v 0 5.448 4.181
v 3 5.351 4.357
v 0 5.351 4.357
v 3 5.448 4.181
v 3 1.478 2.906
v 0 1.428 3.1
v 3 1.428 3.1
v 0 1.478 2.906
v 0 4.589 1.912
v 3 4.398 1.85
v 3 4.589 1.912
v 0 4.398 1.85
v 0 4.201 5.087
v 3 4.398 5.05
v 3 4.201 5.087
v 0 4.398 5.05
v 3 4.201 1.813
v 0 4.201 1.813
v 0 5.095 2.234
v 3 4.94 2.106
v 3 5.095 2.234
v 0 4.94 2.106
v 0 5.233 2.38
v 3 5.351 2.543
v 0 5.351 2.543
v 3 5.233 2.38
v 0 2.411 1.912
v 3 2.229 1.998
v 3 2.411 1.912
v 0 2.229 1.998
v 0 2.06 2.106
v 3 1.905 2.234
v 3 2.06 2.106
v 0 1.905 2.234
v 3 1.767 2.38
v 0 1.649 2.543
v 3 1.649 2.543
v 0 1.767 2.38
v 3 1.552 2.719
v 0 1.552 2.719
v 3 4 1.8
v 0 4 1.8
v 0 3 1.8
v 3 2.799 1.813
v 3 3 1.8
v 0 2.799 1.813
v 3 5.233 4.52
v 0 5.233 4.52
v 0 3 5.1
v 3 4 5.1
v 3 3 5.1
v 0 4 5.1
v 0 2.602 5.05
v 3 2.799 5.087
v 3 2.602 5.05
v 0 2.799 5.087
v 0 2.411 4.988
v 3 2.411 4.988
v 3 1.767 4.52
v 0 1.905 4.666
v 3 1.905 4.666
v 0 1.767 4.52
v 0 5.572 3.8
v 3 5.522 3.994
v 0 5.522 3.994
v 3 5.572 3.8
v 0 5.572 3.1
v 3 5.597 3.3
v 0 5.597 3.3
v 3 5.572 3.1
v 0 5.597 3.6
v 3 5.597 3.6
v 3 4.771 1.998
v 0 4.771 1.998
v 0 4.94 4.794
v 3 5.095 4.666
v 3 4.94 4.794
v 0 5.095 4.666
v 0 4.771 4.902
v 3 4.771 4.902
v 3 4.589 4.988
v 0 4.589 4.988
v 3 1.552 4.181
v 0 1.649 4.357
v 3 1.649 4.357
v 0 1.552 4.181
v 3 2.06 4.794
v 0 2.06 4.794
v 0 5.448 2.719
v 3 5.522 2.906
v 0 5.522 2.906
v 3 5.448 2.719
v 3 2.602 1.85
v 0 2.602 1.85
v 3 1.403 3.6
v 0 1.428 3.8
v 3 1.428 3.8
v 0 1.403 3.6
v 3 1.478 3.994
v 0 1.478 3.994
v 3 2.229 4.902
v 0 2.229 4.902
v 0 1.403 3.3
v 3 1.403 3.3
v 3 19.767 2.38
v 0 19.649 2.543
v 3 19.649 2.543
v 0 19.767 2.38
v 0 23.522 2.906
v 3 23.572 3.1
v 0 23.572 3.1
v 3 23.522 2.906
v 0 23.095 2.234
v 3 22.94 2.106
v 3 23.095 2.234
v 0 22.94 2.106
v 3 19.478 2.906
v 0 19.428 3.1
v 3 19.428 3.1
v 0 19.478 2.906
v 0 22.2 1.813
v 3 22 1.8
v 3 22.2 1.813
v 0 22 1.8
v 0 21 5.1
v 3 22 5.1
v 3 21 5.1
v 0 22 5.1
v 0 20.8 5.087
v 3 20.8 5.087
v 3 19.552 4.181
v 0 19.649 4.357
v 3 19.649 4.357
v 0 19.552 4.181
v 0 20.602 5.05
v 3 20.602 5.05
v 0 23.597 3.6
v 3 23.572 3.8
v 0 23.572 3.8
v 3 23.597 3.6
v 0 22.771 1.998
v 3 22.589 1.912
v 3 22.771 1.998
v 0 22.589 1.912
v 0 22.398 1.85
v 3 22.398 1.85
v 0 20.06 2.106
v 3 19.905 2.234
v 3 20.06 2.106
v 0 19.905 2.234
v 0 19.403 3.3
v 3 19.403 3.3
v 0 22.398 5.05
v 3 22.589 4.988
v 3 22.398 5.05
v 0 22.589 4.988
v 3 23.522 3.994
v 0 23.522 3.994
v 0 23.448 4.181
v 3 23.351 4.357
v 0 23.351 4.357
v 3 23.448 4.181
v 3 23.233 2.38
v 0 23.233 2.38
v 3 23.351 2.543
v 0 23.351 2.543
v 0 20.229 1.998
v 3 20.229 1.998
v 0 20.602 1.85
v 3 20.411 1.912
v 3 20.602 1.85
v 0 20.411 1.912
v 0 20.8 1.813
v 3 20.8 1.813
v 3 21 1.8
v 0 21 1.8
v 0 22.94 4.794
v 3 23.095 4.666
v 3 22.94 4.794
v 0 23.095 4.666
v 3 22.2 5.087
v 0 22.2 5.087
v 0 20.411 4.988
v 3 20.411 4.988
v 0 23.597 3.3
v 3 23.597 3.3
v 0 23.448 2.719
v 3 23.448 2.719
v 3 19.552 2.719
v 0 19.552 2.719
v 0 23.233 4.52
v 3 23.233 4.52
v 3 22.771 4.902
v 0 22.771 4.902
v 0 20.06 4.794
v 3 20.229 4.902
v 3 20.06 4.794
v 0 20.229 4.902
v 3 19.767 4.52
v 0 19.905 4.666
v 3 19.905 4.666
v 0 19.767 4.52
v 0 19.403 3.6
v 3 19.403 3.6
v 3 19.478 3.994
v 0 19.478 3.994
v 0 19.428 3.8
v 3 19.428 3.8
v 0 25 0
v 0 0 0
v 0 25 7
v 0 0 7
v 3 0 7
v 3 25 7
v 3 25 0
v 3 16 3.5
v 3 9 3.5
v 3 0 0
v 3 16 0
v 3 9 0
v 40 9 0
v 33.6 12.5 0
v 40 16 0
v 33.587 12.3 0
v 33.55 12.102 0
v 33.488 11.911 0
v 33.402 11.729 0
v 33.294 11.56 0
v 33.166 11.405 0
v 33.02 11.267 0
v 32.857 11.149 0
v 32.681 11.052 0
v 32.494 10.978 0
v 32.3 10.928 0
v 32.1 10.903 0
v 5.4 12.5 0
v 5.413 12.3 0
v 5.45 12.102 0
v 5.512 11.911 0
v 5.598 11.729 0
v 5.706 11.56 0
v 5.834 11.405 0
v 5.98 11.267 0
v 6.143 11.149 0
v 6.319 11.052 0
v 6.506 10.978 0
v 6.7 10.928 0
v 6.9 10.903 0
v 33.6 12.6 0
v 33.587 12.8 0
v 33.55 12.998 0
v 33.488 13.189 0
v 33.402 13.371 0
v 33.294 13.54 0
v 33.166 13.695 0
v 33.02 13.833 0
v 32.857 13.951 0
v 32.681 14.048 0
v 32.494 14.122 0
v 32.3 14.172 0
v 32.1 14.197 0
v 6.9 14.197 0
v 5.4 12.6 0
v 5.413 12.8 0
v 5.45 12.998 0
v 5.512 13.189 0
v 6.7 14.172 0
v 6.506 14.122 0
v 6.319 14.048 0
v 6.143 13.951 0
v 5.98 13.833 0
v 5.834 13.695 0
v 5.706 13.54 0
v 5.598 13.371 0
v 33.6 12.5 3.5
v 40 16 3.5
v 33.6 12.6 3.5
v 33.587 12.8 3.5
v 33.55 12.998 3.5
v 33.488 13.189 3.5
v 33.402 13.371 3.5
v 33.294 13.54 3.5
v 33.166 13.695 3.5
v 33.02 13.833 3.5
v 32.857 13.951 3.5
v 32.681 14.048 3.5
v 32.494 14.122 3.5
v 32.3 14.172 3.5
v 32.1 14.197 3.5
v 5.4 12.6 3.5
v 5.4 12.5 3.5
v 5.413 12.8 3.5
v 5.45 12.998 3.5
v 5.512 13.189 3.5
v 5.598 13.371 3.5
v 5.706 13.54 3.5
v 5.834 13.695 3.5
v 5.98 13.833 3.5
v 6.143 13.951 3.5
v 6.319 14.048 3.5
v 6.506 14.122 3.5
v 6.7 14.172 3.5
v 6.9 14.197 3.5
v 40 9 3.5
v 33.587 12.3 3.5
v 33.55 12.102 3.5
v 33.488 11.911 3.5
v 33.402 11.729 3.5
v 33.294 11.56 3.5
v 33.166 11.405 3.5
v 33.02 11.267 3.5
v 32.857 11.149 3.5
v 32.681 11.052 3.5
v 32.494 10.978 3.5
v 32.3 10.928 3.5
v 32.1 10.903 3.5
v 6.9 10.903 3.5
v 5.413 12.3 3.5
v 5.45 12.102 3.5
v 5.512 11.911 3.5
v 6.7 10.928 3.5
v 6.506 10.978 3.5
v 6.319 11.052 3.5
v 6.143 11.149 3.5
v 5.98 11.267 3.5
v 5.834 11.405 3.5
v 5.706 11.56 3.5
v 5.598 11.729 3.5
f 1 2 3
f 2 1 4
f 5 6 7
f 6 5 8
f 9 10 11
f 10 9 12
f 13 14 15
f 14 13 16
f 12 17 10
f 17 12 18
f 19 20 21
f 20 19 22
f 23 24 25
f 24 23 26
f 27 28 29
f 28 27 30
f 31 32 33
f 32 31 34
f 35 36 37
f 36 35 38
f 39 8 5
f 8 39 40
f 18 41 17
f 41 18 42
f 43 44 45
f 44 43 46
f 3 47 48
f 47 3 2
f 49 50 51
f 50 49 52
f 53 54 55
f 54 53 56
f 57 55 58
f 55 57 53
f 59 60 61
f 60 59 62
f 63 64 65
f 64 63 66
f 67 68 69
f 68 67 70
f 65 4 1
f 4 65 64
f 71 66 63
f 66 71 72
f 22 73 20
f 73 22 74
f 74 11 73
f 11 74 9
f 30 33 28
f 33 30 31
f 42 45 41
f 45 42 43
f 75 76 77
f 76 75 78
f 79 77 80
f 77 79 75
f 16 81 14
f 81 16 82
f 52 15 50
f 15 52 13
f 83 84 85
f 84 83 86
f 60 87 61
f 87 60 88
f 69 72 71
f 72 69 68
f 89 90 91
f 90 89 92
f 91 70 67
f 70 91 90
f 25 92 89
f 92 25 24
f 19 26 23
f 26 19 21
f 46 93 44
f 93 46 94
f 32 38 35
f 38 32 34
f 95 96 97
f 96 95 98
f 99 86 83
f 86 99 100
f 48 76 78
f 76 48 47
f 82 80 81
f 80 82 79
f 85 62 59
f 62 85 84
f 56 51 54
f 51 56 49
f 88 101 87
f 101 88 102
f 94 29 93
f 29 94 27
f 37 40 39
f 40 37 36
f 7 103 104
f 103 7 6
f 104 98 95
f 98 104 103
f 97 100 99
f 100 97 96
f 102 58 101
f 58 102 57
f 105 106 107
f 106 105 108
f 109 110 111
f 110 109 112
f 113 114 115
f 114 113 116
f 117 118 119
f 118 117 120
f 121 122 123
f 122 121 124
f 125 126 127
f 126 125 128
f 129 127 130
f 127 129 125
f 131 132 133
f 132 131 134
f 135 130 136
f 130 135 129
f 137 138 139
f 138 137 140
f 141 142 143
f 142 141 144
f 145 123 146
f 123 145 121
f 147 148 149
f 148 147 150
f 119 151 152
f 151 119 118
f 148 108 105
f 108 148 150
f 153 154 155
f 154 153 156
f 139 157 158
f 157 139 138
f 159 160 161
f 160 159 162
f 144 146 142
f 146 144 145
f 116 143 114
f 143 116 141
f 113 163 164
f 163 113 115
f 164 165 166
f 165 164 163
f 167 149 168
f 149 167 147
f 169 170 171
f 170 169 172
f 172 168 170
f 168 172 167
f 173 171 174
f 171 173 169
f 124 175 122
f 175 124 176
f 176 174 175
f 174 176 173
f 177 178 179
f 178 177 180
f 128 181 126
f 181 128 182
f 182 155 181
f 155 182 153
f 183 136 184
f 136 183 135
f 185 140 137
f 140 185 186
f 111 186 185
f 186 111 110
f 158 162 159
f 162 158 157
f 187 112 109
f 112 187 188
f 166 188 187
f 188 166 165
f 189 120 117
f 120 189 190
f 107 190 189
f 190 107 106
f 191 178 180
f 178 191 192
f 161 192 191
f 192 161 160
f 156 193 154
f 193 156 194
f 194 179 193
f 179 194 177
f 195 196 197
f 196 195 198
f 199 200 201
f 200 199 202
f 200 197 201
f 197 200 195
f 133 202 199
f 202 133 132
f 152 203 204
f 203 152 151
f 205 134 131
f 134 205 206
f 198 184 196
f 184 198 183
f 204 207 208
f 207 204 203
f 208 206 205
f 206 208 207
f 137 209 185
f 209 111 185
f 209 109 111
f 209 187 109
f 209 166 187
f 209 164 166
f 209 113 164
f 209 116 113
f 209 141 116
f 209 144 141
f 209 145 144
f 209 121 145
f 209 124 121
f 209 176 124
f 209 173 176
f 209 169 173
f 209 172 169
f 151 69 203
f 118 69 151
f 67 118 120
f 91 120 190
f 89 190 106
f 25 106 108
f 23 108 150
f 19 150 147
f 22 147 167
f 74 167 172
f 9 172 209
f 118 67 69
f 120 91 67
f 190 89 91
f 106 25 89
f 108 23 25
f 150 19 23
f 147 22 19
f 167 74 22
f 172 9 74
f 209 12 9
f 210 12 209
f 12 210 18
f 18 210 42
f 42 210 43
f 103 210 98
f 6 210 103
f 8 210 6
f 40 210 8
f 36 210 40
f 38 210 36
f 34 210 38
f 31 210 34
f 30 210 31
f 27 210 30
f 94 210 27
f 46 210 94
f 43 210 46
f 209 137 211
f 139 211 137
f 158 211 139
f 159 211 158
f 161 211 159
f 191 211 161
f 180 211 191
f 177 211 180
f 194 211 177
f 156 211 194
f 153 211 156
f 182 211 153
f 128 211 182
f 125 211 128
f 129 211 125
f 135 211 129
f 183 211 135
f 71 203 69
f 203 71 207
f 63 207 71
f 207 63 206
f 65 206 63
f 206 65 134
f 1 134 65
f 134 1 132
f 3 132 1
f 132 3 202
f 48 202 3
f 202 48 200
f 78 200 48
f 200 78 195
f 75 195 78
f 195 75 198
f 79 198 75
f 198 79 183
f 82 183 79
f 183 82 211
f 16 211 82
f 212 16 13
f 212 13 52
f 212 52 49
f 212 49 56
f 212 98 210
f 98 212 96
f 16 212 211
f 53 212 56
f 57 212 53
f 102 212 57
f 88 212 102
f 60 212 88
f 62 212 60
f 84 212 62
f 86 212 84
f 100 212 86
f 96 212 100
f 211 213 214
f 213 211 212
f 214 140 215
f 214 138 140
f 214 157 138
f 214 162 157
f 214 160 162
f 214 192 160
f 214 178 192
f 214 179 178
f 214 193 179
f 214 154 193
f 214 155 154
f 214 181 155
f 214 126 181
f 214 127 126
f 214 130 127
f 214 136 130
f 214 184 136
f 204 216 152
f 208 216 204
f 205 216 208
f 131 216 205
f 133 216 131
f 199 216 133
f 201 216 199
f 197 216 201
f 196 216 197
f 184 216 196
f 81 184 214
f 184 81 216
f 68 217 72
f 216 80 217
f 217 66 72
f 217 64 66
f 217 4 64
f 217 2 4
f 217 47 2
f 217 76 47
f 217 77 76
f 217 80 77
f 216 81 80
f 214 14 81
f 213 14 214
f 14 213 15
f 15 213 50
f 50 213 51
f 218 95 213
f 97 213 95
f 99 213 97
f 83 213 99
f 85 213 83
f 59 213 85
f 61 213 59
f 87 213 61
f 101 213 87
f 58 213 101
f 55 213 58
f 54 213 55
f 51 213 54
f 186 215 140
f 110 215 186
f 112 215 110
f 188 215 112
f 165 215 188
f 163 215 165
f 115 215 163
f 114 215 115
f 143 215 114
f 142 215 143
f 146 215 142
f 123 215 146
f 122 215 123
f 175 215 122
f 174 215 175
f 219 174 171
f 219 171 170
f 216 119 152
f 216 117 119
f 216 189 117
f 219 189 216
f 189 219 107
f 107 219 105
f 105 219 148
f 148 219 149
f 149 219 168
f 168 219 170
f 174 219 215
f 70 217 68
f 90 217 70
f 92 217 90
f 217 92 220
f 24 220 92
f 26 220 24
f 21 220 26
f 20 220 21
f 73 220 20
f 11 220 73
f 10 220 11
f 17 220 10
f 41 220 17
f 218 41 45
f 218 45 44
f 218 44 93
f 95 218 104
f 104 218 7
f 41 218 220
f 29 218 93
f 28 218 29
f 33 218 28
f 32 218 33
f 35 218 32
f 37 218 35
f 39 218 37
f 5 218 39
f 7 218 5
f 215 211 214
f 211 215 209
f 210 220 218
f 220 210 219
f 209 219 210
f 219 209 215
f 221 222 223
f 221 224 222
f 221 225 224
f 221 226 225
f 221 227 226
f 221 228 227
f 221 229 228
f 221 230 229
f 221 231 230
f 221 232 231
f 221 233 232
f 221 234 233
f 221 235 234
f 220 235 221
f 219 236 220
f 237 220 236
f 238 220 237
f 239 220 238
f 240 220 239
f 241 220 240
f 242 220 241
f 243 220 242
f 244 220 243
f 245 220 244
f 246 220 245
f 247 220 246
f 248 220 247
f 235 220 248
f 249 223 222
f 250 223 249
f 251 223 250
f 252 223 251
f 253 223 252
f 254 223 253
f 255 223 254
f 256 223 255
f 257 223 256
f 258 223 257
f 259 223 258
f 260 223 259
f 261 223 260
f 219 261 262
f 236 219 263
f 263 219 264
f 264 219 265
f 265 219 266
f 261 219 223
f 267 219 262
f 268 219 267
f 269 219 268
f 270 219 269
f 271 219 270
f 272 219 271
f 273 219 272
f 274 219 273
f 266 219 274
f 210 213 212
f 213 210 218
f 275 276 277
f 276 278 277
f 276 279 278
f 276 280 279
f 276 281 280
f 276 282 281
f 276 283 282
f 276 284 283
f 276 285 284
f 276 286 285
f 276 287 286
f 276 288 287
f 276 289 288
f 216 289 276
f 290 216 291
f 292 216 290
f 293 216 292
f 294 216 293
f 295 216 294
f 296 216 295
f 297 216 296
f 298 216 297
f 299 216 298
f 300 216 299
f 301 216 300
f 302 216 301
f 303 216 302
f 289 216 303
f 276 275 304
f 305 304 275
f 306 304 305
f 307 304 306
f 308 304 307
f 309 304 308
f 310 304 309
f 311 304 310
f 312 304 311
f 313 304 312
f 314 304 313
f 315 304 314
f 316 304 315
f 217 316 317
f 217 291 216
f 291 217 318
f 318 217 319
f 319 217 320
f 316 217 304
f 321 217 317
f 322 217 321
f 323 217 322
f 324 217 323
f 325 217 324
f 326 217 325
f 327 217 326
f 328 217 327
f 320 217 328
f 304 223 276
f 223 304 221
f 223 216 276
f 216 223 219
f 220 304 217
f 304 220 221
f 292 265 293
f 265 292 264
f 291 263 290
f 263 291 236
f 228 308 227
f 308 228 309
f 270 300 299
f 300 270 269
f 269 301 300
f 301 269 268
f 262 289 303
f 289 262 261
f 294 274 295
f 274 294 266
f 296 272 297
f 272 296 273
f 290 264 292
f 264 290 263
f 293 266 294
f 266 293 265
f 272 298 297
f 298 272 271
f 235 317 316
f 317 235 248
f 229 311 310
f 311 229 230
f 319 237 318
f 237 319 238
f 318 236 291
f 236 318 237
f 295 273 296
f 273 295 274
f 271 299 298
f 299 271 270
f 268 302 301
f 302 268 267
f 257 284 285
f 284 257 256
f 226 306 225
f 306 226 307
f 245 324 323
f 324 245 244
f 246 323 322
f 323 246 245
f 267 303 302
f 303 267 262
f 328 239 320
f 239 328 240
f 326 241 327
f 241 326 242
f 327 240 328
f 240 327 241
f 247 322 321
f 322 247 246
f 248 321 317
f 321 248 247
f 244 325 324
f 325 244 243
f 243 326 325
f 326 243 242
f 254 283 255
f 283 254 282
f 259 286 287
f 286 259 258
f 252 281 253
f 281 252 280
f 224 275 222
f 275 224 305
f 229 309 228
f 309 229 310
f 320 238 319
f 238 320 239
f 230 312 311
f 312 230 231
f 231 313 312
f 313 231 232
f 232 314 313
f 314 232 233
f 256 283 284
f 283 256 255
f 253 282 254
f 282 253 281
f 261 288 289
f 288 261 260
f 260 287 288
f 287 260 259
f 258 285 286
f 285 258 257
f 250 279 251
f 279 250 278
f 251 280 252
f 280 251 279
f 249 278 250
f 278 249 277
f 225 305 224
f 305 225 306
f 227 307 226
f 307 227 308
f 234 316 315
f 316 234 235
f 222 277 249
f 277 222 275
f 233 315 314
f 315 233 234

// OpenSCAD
$fn = 50;

difference(){
    cube([3, 25, 7]);

    translate([-0.1, 3.5, 0])
    union() {
        translate([0, -0.5, 3.5])
            rotate([0, 90, 0])
            minkowski() {
                cube([0.1, 1, 4]);
                cylinder(4, 1.6, 1.6);
            }

        translate([0, 17.5, 3.5])
            rotate([0, 90, 0])
            minkowski() {
                cube([0.1, 1, 4]);
                cylinder(4, 1.6, 1.6);
            }
    }

}

translate([0, 9, 0]) 
    difference() {
        cube ([40, 7 ,3.5]);

        translate([7, 3.5, -0.1])
            minkowski() {
                cube([25, 0.1, 4]);

                cylinder(4, 1.6, 1.6);
            }
    }
